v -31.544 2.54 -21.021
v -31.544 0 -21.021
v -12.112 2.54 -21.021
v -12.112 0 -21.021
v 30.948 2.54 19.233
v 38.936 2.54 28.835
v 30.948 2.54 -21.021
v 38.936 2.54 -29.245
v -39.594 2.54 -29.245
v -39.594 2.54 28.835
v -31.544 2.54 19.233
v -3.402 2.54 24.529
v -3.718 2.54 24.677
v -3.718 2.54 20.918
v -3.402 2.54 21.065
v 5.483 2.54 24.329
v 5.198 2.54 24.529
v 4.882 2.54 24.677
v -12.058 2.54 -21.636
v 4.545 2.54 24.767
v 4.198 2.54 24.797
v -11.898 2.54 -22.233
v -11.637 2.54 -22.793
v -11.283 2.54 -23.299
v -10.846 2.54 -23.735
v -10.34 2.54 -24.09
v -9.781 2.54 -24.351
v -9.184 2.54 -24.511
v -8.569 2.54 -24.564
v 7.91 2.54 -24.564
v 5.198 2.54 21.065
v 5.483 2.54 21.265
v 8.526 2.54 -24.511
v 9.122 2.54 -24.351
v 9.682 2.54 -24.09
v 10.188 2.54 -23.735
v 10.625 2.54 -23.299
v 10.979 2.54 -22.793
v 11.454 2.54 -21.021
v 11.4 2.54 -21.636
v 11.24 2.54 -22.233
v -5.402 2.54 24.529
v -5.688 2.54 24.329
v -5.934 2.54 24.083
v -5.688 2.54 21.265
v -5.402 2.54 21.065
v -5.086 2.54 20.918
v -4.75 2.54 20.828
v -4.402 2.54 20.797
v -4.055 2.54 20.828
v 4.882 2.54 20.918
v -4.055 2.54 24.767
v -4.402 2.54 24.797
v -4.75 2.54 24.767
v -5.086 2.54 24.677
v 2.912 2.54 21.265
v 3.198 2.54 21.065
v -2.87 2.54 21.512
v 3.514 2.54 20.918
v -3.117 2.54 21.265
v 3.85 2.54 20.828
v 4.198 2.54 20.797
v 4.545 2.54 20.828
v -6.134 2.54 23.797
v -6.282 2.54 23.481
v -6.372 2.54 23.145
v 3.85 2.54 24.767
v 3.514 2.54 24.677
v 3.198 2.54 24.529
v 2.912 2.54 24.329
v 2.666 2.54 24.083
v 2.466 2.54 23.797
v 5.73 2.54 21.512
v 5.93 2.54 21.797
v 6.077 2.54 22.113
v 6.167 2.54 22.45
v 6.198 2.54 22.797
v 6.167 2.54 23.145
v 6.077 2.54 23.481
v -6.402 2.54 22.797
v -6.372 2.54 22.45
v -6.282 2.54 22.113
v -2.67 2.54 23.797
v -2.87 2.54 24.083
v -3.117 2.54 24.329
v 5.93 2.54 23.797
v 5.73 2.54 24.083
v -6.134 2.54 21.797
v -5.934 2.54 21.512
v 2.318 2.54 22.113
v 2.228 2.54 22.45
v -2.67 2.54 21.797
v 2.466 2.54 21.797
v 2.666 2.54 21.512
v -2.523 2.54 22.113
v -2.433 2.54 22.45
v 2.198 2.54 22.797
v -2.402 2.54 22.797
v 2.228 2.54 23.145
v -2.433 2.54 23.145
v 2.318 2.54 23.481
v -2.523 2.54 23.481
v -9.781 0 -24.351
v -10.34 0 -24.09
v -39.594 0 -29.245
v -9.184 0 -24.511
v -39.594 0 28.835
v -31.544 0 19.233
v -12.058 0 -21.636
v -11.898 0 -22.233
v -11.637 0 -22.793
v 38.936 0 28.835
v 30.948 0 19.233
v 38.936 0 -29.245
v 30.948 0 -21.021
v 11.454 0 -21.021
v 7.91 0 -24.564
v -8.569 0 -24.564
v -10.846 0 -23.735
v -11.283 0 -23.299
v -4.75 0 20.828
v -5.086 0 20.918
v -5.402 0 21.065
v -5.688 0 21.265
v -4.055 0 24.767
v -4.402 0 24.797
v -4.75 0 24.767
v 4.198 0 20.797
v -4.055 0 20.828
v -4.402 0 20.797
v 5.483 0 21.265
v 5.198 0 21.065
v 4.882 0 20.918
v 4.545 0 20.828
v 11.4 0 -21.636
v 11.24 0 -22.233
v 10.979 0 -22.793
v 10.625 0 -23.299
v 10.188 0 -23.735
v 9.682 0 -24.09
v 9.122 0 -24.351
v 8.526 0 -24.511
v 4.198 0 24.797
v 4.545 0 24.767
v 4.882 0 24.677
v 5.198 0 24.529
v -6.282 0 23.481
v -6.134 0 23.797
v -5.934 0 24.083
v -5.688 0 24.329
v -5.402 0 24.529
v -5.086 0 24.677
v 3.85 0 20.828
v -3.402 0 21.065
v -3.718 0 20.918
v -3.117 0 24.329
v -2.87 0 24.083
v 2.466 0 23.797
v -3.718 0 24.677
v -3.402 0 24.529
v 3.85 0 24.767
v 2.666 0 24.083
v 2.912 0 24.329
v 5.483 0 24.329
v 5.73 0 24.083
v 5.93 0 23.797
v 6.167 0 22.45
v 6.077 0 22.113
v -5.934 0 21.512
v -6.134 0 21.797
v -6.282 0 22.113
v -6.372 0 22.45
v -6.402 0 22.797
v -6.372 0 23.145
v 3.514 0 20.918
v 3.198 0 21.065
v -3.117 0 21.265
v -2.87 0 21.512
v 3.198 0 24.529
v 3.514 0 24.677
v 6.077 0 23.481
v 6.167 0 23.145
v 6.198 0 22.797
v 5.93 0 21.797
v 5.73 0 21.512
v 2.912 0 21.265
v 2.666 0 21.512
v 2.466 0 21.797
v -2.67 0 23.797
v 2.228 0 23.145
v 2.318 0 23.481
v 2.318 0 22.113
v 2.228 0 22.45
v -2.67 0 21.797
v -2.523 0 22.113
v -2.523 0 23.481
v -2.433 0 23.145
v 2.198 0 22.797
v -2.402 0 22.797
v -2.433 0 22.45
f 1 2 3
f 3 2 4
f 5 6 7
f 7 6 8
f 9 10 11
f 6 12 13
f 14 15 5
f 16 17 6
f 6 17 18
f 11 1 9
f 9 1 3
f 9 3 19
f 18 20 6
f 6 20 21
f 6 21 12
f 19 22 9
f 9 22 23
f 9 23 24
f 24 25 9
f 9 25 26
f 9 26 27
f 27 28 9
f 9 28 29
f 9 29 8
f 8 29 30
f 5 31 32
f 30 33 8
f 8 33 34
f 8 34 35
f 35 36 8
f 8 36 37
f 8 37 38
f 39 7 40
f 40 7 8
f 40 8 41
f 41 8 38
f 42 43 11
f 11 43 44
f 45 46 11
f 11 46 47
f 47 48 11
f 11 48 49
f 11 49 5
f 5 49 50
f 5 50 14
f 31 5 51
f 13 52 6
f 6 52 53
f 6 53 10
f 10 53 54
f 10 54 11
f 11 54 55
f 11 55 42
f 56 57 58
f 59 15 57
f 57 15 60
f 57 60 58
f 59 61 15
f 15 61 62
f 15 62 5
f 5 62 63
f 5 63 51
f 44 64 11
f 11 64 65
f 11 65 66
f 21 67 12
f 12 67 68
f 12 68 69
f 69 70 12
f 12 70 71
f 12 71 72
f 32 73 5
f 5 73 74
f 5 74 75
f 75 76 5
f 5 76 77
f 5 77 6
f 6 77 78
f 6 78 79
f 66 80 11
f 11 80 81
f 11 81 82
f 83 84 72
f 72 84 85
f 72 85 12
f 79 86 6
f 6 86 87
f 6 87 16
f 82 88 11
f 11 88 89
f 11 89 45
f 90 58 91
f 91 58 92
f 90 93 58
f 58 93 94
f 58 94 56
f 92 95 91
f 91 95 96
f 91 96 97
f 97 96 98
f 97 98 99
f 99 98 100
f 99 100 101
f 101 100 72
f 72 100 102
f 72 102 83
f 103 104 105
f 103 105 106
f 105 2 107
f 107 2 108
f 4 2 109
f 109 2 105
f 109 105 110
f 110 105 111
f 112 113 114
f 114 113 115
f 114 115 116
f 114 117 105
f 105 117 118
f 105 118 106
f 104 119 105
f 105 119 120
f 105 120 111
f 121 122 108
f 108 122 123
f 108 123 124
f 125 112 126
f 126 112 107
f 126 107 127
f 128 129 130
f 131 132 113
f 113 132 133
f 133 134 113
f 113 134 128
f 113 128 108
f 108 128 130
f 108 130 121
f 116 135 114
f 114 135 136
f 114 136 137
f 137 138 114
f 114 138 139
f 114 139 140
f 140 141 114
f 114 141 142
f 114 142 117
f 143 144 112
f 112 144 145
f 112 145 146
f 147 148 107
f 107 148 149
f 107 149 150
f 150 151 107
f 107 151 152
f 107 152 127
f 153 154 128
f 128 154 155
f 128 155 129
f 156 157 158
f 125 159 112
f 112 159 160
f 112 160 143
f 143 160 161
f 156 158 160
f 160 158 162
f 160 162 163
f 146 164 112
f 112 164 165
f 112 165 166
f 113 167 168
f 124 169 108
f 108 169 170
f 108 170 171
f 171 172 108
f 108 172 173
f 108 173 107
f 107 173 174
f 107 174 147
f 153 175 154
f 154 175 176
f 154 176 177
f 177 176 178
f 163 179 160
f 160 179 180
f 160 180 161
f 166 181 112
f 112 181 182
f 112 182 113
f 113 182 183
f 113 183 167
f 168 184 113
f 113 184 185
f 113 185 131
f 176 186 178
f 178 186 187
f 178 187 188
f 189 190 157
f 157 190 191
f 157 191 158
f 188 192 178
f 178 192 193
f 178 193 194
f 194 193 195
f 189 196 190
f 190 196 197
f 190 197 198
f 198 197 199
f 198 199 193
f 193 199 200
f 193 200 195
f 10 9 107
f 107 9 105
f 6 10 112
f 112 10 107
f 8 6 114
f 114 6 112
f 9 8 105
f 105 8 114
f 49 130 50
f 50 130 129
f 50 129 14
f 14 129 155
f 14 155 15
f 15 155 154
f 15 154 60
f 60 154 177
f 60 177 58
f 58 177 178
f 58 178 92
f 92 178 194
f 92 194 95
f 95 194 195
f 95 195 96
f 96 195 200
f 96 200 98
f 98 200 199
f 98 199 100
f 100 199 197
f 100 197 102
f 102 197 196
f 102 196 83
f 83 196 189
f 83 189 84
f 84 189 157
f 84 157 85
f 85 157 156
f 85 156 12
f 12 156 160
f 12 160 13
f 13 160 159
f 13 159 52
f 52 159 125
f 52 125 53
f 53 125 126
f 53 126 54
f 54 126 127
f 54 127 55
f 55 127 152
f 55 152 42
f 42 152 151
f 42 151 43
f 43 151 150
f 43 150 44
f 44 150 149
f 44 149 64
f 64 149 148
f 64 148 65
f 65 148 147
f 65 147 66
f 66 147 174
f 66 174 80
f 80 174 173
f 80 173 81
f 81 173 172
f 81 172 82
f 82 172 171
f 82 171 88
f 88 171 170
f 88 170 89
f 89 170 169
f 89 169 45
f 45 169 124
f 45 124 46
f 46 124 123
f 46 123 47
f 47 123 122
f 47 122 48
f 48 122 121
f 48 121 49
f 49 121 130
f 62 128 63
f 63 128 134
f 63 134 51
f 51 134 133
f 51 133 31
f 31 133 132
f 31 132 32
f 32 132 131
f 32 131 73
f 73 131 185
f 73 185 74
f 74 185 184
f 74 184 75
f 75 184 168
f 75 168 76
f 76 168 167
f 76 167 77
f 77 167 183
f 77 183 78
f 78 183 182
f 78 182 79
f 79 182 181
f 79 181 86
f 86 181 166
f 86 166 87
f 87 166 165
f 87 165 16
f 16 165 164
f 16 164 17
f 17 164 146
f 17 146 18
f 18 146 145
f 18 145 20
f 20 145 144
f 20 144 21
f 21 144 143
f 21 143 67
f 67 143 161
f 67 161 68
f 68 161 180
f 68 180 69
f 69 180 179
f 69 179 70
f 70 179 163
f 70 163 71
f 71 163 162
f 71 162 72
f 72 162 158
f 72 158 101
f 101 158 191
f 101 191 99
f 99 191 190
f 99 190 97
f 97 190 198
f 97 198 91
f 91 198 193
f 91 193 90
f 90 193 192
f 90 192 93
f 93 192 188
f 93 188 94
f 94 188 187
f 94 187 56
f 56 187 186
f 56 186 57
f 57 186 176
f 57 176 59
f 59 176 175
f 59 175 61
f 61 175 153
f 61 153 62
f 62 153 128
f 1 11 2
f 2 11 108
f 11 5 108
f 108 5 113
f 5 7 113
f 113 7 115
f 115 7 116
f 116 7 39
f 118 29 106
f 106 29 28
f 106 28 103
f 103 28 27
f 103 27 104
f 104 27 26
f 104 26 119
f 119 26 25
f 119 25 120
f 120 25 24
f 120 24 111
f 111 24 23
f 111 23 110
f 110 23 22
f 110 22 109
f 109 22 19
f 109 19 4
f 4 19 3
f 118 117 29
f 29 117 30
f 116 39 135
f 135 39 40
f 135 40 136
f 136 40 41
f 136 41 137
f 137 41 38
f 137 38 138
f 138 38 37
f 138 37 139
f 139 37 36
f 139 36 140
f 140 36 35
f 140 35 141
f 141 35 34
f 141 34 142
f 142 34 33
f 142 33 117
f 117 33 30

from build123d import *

# Parameters (mm, degrees)
SKETCH1_W           = 78.53
SKETCH1_H           = 58.08
SKETCH1_R           = 1.905
SKETCH1_W_2         = 62.491610006
SKETCH1_H_2         = 40.253760829
BOSS_EXTRUDE1_DEPTH = 2.54
CUT_EXTRUDE1_DEPTH  = 2.54


with BuildPart() as part:
    # Sketch1 → Boss-Extrude1 (new body)
    with BuildSketch(Plane(origin=(0, 0, 0), x_dir=(1, 0, 0), z_dir=(0, 1, 0))):
        with Locations((-0.329128556, 0.204655215)):
            Rectangle(SKETCH1_W, SKETCH1_H)
        with Locations(Location((-4.402236218, -22.797237123, 0), (0, 0, 270))):
            Circle(SKETCH1_R, mode=Mode.SUBTRACT)
        with Locations(Location((4.197763782, -22.797237123, 0), (0, 0, 270))):
            Circle(SKETCH1_R, mode=Mode.SUBTRACT)
        with Locations((-0.298250033, 0.894255625)):
            Rectangle(SKETCH1_W_2, SKETCH1_H_2, mode=Mode.SUBTRACT)
    extrude(amount=BOSS_EXTRUDE1_DEPTH)

    # Sketch2 → Cut-Extrude1 (cut)
    with BuildSketch(Plane(origin=(0, 2.54, 0), x_dir=(1, 0, 0), z_dir=(0, 1, 0))):
        with BuildLine():
            Line((-8.568685341, 24.564329148), (7.910428229, 24.564329148))
            ThreePointArc((7.910428229, 24.564329148), (11.453621336, 21.02113604), (7.910428229, 17.477942933))
            Line((7.910428229, 17.477942933), (-8.568685341, 17.477942933))
            ThreePointArc((-8.568685341, 17.477942933), (-12.111878448, 21.02113604), (-8.568685341, 24.564329148))
        make_face()
    extrude(amount=-CUT_EXTRUDE1_DEPTH, mode=Mode.SUBTRACT)


solid = part.part
